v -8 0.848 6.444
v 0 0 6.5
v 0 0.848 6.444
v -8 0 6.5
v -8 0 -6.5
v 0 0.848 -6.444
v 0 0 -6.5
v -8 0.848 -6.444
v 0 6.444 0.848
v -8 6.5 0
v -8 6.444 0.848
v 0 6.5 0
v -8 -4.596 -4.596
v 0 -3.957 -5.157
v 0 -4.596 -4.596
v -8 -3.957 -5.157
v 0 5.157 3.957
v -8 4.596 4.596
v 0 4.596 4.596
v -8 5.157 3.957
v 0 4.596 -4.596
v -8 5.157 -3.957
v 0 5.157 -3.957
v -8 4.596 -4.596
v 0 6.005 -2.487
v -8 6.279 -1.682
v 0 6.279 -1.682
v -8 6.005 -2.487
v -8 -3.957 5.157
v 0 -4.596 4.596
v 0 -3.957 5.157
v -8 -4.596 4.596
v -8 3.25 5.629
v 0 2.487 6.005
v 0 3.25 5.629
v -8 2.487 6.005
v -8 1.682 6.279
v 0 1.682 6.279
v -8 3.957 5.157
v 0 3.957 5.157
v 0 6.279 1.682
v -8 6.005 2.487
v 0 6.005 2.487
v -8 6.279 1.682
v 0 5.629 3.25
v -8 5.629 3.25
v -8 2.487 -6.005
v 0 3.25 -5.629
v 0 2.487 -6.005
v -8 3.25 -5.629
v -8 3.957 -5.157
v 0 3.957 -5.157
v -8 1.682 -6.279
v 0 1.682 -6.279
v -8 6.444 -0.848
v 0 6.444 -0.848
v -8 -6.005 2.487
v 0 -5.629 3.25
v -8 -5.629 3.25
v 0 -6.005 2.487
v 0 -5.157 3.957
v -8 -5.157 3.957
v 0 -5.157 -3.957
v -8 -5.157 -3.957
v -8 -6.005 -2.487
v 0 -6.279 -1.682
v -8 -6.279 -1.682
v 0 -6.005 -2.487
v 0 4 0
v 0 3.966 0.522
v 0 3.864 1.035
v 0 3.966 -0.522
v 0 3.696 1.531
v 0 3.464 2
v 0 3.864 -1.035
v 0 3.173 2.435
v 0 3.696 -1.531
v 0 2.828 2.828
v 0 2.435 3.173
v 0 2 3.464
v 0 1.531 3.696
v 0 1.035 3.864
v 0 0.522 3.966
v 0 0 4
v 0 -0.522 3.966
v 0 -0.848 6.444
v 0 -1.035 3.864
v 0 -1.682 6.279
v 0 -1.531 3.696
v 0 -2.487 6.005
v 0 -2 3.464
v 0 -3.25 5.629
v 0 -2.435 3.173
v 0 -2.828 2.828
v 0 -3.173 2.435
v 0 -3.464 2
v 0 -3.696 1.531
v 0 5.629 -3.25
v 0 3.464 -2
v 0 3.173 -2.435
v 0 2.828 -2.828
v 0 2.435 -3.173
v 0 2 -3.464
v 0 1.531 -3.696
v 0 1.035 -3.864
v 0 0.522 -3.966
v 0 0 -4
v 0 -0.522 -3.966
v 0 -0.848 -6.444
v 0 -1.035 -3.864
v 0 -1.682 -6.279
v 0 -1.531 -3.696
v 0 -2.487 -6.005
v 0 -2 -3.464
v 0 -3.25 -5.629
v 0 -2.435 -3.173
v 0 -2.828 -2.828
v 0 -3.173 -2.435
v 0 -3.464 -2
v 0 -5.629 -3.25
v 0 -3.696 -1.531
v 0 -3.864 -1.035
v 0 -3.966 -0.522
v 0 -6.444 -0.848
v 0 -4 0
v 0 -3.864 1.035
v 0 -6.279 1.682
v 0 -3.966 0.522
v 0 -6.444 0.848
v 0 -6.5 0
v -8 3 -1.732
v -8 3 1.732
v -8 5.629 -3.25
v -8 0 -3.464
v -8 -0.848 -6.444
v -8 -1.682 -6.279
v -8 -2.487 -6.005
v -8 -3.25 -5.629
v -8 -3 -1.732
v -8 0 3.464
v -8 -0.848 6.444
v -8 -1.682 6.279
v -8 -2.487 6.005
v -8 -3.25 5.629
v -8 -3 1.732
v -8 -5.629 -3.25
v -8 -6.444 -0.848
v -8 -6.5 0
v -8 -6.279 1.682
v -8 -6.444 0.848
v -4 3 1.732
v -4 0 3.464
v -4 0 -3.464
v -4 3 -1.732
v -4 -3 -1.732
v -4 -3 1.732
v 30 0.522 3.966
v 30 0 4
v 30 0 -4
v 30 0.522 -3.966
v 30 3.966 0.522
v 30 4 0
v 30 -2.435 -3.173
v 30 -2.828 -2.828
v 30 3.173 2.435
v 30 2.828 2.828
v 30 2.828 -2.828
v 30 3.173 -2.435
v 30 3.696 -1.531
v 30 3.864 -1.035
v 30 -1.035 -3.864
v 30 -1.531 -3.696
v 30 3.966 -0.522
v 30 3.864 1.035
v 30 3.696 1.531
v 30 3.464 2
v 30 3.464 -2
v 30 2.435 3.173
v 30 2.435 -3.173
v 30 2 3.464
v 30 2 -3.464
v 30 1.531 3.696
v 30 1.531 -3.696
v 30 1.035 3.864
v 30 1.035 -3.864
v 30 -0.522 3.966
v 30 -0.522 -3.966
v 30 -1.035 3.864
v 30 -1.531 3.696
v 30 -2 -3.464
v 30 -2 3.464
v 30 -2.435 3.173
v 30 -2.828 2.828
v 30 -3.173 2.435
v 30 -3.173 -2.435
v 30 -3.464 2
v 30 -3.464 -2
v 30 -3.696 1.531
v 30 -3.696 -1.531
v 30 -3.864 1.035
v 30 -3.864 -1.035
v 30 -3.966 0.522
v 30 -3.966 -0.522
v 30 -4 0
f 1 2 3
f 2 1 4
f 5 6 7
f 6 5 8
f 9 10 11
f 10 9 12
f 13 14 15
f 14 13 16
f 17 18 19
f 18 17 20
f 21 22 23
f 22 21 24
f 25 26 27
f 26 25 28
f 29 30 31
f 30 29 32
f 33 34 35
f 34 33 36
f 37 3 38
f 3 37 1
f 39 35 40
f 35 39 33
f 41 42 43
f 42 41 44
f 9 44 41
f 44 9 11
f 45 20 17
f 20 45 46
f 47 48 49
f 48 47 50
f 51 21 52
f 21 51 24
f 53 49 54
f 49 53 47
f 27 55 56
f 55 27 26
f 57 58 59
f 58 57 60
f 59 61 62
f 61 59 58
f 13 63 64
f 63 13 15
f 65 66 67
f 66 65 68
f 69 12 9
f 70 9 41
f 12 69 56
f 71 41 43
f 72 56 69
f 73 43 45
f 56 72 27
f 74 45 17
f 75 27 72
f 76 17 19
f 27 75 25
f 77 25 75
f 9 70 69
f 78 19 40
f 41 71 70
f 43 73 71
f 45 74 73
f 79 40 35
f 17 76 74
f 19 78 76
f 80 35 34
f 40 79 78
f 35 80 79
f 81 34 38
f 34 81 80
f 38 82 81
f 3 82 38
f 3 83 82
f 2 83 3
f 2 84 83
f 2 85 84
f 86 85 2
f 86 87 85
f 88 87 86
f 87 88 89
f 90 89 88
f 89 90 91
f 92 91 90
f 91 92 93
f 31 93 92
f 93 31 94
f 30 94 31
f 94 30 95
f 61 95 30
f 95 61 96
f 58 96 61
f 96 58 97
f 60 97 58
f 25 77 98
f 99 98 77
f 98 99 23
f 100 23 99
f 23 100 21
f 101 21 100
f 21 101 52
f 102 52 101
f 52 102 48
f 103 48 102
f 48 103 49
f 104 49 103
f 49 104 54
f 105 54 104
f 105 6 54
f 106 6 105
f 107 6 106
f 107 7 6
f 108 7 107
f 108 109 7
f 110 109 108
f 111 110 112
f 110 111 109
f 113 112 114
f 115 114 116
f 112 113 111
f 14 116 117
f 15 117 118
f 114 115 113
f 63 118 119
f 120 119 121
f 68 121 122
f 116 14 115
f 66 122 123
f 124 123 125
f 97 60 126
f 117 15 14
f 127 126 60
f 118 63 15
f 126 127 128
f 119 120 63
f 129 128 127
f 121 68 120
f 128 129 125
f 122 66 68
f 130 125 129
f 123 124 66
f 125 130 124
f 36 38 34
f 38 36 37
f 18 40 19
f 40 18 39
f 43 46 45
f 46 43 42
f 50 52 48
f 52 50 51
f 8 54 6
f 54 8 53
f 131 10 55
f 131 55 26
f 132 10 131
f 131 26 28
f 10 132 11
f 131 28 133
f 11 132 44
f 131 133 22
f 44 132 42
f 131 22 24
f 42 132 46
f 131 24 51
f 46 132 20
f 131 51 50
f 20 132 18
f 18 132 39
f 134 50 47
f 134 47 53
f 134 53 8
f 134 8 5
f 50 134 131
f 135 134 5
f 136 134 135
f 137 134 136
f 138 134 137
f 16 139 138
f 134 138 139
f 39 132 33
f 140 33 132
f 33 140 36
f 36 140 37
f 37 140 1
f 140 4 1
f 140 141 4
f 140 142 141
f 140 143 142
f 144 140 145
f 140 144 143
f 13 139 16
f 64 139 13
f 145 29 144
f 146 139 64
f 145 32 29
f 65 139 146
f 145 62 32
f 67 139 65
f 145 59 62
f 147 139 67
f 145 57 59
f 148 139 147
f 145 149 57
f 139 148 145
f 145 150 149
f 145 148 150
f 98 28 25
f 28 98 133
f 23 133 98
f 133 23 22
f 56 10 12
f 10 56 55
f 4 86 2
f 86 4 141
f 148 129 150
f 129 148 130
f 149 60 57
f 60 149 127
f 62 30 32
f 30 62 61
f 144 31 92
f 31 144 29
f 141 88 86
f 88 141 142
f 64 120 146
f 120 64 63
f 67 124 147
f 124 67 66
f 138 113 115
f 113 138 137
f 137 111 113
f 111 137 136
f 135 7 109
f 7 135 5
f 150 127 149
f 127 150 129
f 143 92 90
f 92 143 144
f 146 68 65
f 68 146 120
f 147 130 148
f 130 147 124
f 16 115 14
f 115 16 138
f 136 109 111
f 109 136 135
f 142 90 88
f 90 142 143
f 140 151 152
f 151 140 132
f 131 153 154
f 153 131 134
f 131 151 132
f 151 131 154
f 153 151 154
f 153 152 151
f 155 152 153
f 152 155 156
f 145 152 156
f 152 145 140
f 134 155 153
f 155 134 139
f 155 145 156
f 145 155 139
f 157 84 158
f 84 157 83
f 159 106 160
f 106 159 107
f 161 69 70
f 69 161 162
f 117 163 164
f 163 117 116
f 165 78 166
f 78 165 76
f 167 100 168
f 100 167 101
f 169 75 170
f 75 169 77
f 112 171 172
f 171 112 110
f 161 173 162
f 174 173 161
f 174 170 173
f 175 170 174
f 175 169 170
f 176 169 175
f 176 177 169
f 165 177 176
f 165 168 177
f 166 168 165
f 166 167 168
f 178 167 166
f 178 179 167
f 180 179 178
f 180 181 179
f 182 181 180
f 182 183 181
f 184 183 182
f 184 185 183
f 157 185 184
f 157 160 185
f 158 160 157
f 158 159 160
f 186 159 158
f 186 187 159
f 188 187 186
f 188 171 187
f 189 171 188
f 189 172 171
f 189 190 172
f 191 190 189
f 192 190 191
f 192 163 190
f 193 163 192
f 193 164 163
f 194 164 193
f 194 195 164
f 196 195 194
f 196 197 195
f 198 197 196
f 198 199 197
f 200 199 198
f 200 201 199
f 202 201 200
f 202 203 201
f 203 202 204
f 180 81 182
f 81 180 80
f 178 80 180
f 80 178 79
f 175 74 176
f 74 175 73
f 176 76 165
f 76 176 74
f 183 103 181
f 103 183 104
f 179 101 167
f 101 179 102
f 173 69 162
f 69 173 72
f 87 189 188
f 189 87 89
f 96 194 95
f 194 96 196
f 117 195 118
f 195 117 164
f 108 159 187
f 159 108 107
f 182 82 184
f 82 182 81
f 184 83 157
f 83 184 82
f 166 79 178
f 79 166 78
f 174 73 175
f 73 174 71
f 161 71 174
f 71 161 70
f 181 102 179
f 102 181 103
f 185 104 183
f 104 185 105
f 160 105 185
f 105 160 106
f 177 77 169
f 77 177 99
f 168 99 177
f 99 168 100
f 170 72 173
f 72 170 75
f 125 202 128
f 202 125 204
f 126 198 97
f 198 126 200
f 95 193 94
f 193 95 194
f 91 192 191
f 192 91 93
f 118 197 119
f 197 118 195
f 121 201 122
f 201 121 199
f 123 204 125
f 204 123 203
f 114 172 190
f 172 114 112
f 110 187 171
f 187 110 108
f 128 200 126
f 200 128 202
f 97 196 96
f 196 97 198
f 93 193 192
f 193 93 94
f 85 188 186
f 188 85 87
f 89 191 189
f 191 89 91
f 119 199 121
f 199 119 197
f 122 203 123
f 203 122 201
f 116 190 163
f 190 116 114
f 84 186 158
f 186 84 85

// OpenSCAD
// file: ../../../lib/nutsnbolts/data-access.scad
// Norm Nuts and Bolts - a OpenSCAD library
// Copyright (C) 2012  Johannes Kneer

// This program is free software: you can redistribute it and/or modify
// it under the terms of the GNU General Public License as published by
// the Free Software Foundation, either version 3 of the License, or
// (at your option) any later version.

// This program is distributed in the hope that it will be useful,
// but WITHOUT ANY WARRANTY; without even the implied warranty of
// MERCHANTABILITY or FITNESS FOR A PARTICULAR PURPOSE.  See the
// GNU General Public License for more details.

// You should have received a copy of the GNU General Public License
// along with this program.  If not, see <http://www.gnu.org/licenses/>.


// DATABASE ACCESS FUNCTIONS AND CONSTANTS



// == CONSTANTS ==

// screw table access keys
_NB_S_DESC            = 0;
_NB_S_FAMKEY			    = 1;
_NB_S_LENGTH          = 2;
_NB_S_NOTHREAD_LENGTH = 3;

_NB_F_DESC			      = 0;
_NB_F_OUTER_DIA       = 1;
_NB_F_INNER_DIA       = 2;
_NB_F_LEAD            = 3;
_NB_F_KEY             = 4;
_NB_F_KEY_DEPTH       = 5;
_NB_F_HEAD_HEIGHT     = 6;
_NB_F_HEAD_DIA        = 7;
_NB_F_NUT_KEY         = 8;
_NB_F_NUT_HEIGHT      = 9;
_NB_F_PITCH_FINE      = 10;
_NB_F_PITCH_MEDIUM    = 11;
_NB_F_PITCH_COARSE    = 12;


// == FUNCTIONS ==

// _get_screw("descriptor")   with descriptor = M8x25
//   find the line for a general object in the data matrix

function _get_screw(n) = data_screw[search([n], data_screw)[0]];
function _get_screw_fam(n) = data_screw_fam[search([_get_screw(n)[_NB_S_FAMKEY]], data_screw_fam)[0]];

function _get_fam(n) = data_screw_fam[search([n], data_screw_fam)[0]];


// _get_XXXXX("descriptor") functions
// find a single property in the database

function _get_desc(n)        = _get_screw(n)[_NB_S_DESC];
function _get_famkey(n)         = _get_screw(n)[_NB_S_FAMKEY];
function _get_length(n)      = _get_screw(n)[_NB_S_LENGTH];
function _get_nt_length(n)   = _get_screw(n)[_NB_S_NOTHREAD_LENGTH];

function _get_outer_dia(n)   = _get_screw_fam(n)[_NB_F_OUTER_DIA];
function _get_inner_dia(n)   = _get_screw_fam(n)[_NB_F_INNER_DIA];
function _get_lead(n)        = _get_screw_fam(n)[_NB_F_LEAD];
function _get_head_height(n) = _get_screw_fam(n)[_NB_F_HEAD_HEIGHT];
function _get_head_dia(n)    = _get_screw_fam(n)[_NB_F_HEAD_DIA];
function _get_nut_key(n)     = _get_screw_fam(n)[_NB_F_NUT_KEY];
function _get_nut_height(n)  = _get_screw_fam(n)[_NB_F_NUT_HEIGHT];
function _get_fine_pitch(n)  = _get_screw_fam(n)[_NB_F_PITCH_FINE];
function _get_medium_pitch(n)  = _get_screw_fam(n)[_NB_F_PITCH_MEDIUM];
function _get_coarse_pitch(n)  = _get_screw_fam(n)[_NB_F_PITCH_COARSE];
// main file
/**********************************************************************************************************************
 **
 ** parts/vitamins/screw_M8x30.scad
 **
 ** This file renders a screw of the dimensions specified by the file name.
 **
 **********************************************************************************************************************/

include <../../../lib/nutsnbolts/cyl_head_bolt.scad>;

$fn = 48;
rotate([0, -90, 0])
	screw("M8x30"); 
